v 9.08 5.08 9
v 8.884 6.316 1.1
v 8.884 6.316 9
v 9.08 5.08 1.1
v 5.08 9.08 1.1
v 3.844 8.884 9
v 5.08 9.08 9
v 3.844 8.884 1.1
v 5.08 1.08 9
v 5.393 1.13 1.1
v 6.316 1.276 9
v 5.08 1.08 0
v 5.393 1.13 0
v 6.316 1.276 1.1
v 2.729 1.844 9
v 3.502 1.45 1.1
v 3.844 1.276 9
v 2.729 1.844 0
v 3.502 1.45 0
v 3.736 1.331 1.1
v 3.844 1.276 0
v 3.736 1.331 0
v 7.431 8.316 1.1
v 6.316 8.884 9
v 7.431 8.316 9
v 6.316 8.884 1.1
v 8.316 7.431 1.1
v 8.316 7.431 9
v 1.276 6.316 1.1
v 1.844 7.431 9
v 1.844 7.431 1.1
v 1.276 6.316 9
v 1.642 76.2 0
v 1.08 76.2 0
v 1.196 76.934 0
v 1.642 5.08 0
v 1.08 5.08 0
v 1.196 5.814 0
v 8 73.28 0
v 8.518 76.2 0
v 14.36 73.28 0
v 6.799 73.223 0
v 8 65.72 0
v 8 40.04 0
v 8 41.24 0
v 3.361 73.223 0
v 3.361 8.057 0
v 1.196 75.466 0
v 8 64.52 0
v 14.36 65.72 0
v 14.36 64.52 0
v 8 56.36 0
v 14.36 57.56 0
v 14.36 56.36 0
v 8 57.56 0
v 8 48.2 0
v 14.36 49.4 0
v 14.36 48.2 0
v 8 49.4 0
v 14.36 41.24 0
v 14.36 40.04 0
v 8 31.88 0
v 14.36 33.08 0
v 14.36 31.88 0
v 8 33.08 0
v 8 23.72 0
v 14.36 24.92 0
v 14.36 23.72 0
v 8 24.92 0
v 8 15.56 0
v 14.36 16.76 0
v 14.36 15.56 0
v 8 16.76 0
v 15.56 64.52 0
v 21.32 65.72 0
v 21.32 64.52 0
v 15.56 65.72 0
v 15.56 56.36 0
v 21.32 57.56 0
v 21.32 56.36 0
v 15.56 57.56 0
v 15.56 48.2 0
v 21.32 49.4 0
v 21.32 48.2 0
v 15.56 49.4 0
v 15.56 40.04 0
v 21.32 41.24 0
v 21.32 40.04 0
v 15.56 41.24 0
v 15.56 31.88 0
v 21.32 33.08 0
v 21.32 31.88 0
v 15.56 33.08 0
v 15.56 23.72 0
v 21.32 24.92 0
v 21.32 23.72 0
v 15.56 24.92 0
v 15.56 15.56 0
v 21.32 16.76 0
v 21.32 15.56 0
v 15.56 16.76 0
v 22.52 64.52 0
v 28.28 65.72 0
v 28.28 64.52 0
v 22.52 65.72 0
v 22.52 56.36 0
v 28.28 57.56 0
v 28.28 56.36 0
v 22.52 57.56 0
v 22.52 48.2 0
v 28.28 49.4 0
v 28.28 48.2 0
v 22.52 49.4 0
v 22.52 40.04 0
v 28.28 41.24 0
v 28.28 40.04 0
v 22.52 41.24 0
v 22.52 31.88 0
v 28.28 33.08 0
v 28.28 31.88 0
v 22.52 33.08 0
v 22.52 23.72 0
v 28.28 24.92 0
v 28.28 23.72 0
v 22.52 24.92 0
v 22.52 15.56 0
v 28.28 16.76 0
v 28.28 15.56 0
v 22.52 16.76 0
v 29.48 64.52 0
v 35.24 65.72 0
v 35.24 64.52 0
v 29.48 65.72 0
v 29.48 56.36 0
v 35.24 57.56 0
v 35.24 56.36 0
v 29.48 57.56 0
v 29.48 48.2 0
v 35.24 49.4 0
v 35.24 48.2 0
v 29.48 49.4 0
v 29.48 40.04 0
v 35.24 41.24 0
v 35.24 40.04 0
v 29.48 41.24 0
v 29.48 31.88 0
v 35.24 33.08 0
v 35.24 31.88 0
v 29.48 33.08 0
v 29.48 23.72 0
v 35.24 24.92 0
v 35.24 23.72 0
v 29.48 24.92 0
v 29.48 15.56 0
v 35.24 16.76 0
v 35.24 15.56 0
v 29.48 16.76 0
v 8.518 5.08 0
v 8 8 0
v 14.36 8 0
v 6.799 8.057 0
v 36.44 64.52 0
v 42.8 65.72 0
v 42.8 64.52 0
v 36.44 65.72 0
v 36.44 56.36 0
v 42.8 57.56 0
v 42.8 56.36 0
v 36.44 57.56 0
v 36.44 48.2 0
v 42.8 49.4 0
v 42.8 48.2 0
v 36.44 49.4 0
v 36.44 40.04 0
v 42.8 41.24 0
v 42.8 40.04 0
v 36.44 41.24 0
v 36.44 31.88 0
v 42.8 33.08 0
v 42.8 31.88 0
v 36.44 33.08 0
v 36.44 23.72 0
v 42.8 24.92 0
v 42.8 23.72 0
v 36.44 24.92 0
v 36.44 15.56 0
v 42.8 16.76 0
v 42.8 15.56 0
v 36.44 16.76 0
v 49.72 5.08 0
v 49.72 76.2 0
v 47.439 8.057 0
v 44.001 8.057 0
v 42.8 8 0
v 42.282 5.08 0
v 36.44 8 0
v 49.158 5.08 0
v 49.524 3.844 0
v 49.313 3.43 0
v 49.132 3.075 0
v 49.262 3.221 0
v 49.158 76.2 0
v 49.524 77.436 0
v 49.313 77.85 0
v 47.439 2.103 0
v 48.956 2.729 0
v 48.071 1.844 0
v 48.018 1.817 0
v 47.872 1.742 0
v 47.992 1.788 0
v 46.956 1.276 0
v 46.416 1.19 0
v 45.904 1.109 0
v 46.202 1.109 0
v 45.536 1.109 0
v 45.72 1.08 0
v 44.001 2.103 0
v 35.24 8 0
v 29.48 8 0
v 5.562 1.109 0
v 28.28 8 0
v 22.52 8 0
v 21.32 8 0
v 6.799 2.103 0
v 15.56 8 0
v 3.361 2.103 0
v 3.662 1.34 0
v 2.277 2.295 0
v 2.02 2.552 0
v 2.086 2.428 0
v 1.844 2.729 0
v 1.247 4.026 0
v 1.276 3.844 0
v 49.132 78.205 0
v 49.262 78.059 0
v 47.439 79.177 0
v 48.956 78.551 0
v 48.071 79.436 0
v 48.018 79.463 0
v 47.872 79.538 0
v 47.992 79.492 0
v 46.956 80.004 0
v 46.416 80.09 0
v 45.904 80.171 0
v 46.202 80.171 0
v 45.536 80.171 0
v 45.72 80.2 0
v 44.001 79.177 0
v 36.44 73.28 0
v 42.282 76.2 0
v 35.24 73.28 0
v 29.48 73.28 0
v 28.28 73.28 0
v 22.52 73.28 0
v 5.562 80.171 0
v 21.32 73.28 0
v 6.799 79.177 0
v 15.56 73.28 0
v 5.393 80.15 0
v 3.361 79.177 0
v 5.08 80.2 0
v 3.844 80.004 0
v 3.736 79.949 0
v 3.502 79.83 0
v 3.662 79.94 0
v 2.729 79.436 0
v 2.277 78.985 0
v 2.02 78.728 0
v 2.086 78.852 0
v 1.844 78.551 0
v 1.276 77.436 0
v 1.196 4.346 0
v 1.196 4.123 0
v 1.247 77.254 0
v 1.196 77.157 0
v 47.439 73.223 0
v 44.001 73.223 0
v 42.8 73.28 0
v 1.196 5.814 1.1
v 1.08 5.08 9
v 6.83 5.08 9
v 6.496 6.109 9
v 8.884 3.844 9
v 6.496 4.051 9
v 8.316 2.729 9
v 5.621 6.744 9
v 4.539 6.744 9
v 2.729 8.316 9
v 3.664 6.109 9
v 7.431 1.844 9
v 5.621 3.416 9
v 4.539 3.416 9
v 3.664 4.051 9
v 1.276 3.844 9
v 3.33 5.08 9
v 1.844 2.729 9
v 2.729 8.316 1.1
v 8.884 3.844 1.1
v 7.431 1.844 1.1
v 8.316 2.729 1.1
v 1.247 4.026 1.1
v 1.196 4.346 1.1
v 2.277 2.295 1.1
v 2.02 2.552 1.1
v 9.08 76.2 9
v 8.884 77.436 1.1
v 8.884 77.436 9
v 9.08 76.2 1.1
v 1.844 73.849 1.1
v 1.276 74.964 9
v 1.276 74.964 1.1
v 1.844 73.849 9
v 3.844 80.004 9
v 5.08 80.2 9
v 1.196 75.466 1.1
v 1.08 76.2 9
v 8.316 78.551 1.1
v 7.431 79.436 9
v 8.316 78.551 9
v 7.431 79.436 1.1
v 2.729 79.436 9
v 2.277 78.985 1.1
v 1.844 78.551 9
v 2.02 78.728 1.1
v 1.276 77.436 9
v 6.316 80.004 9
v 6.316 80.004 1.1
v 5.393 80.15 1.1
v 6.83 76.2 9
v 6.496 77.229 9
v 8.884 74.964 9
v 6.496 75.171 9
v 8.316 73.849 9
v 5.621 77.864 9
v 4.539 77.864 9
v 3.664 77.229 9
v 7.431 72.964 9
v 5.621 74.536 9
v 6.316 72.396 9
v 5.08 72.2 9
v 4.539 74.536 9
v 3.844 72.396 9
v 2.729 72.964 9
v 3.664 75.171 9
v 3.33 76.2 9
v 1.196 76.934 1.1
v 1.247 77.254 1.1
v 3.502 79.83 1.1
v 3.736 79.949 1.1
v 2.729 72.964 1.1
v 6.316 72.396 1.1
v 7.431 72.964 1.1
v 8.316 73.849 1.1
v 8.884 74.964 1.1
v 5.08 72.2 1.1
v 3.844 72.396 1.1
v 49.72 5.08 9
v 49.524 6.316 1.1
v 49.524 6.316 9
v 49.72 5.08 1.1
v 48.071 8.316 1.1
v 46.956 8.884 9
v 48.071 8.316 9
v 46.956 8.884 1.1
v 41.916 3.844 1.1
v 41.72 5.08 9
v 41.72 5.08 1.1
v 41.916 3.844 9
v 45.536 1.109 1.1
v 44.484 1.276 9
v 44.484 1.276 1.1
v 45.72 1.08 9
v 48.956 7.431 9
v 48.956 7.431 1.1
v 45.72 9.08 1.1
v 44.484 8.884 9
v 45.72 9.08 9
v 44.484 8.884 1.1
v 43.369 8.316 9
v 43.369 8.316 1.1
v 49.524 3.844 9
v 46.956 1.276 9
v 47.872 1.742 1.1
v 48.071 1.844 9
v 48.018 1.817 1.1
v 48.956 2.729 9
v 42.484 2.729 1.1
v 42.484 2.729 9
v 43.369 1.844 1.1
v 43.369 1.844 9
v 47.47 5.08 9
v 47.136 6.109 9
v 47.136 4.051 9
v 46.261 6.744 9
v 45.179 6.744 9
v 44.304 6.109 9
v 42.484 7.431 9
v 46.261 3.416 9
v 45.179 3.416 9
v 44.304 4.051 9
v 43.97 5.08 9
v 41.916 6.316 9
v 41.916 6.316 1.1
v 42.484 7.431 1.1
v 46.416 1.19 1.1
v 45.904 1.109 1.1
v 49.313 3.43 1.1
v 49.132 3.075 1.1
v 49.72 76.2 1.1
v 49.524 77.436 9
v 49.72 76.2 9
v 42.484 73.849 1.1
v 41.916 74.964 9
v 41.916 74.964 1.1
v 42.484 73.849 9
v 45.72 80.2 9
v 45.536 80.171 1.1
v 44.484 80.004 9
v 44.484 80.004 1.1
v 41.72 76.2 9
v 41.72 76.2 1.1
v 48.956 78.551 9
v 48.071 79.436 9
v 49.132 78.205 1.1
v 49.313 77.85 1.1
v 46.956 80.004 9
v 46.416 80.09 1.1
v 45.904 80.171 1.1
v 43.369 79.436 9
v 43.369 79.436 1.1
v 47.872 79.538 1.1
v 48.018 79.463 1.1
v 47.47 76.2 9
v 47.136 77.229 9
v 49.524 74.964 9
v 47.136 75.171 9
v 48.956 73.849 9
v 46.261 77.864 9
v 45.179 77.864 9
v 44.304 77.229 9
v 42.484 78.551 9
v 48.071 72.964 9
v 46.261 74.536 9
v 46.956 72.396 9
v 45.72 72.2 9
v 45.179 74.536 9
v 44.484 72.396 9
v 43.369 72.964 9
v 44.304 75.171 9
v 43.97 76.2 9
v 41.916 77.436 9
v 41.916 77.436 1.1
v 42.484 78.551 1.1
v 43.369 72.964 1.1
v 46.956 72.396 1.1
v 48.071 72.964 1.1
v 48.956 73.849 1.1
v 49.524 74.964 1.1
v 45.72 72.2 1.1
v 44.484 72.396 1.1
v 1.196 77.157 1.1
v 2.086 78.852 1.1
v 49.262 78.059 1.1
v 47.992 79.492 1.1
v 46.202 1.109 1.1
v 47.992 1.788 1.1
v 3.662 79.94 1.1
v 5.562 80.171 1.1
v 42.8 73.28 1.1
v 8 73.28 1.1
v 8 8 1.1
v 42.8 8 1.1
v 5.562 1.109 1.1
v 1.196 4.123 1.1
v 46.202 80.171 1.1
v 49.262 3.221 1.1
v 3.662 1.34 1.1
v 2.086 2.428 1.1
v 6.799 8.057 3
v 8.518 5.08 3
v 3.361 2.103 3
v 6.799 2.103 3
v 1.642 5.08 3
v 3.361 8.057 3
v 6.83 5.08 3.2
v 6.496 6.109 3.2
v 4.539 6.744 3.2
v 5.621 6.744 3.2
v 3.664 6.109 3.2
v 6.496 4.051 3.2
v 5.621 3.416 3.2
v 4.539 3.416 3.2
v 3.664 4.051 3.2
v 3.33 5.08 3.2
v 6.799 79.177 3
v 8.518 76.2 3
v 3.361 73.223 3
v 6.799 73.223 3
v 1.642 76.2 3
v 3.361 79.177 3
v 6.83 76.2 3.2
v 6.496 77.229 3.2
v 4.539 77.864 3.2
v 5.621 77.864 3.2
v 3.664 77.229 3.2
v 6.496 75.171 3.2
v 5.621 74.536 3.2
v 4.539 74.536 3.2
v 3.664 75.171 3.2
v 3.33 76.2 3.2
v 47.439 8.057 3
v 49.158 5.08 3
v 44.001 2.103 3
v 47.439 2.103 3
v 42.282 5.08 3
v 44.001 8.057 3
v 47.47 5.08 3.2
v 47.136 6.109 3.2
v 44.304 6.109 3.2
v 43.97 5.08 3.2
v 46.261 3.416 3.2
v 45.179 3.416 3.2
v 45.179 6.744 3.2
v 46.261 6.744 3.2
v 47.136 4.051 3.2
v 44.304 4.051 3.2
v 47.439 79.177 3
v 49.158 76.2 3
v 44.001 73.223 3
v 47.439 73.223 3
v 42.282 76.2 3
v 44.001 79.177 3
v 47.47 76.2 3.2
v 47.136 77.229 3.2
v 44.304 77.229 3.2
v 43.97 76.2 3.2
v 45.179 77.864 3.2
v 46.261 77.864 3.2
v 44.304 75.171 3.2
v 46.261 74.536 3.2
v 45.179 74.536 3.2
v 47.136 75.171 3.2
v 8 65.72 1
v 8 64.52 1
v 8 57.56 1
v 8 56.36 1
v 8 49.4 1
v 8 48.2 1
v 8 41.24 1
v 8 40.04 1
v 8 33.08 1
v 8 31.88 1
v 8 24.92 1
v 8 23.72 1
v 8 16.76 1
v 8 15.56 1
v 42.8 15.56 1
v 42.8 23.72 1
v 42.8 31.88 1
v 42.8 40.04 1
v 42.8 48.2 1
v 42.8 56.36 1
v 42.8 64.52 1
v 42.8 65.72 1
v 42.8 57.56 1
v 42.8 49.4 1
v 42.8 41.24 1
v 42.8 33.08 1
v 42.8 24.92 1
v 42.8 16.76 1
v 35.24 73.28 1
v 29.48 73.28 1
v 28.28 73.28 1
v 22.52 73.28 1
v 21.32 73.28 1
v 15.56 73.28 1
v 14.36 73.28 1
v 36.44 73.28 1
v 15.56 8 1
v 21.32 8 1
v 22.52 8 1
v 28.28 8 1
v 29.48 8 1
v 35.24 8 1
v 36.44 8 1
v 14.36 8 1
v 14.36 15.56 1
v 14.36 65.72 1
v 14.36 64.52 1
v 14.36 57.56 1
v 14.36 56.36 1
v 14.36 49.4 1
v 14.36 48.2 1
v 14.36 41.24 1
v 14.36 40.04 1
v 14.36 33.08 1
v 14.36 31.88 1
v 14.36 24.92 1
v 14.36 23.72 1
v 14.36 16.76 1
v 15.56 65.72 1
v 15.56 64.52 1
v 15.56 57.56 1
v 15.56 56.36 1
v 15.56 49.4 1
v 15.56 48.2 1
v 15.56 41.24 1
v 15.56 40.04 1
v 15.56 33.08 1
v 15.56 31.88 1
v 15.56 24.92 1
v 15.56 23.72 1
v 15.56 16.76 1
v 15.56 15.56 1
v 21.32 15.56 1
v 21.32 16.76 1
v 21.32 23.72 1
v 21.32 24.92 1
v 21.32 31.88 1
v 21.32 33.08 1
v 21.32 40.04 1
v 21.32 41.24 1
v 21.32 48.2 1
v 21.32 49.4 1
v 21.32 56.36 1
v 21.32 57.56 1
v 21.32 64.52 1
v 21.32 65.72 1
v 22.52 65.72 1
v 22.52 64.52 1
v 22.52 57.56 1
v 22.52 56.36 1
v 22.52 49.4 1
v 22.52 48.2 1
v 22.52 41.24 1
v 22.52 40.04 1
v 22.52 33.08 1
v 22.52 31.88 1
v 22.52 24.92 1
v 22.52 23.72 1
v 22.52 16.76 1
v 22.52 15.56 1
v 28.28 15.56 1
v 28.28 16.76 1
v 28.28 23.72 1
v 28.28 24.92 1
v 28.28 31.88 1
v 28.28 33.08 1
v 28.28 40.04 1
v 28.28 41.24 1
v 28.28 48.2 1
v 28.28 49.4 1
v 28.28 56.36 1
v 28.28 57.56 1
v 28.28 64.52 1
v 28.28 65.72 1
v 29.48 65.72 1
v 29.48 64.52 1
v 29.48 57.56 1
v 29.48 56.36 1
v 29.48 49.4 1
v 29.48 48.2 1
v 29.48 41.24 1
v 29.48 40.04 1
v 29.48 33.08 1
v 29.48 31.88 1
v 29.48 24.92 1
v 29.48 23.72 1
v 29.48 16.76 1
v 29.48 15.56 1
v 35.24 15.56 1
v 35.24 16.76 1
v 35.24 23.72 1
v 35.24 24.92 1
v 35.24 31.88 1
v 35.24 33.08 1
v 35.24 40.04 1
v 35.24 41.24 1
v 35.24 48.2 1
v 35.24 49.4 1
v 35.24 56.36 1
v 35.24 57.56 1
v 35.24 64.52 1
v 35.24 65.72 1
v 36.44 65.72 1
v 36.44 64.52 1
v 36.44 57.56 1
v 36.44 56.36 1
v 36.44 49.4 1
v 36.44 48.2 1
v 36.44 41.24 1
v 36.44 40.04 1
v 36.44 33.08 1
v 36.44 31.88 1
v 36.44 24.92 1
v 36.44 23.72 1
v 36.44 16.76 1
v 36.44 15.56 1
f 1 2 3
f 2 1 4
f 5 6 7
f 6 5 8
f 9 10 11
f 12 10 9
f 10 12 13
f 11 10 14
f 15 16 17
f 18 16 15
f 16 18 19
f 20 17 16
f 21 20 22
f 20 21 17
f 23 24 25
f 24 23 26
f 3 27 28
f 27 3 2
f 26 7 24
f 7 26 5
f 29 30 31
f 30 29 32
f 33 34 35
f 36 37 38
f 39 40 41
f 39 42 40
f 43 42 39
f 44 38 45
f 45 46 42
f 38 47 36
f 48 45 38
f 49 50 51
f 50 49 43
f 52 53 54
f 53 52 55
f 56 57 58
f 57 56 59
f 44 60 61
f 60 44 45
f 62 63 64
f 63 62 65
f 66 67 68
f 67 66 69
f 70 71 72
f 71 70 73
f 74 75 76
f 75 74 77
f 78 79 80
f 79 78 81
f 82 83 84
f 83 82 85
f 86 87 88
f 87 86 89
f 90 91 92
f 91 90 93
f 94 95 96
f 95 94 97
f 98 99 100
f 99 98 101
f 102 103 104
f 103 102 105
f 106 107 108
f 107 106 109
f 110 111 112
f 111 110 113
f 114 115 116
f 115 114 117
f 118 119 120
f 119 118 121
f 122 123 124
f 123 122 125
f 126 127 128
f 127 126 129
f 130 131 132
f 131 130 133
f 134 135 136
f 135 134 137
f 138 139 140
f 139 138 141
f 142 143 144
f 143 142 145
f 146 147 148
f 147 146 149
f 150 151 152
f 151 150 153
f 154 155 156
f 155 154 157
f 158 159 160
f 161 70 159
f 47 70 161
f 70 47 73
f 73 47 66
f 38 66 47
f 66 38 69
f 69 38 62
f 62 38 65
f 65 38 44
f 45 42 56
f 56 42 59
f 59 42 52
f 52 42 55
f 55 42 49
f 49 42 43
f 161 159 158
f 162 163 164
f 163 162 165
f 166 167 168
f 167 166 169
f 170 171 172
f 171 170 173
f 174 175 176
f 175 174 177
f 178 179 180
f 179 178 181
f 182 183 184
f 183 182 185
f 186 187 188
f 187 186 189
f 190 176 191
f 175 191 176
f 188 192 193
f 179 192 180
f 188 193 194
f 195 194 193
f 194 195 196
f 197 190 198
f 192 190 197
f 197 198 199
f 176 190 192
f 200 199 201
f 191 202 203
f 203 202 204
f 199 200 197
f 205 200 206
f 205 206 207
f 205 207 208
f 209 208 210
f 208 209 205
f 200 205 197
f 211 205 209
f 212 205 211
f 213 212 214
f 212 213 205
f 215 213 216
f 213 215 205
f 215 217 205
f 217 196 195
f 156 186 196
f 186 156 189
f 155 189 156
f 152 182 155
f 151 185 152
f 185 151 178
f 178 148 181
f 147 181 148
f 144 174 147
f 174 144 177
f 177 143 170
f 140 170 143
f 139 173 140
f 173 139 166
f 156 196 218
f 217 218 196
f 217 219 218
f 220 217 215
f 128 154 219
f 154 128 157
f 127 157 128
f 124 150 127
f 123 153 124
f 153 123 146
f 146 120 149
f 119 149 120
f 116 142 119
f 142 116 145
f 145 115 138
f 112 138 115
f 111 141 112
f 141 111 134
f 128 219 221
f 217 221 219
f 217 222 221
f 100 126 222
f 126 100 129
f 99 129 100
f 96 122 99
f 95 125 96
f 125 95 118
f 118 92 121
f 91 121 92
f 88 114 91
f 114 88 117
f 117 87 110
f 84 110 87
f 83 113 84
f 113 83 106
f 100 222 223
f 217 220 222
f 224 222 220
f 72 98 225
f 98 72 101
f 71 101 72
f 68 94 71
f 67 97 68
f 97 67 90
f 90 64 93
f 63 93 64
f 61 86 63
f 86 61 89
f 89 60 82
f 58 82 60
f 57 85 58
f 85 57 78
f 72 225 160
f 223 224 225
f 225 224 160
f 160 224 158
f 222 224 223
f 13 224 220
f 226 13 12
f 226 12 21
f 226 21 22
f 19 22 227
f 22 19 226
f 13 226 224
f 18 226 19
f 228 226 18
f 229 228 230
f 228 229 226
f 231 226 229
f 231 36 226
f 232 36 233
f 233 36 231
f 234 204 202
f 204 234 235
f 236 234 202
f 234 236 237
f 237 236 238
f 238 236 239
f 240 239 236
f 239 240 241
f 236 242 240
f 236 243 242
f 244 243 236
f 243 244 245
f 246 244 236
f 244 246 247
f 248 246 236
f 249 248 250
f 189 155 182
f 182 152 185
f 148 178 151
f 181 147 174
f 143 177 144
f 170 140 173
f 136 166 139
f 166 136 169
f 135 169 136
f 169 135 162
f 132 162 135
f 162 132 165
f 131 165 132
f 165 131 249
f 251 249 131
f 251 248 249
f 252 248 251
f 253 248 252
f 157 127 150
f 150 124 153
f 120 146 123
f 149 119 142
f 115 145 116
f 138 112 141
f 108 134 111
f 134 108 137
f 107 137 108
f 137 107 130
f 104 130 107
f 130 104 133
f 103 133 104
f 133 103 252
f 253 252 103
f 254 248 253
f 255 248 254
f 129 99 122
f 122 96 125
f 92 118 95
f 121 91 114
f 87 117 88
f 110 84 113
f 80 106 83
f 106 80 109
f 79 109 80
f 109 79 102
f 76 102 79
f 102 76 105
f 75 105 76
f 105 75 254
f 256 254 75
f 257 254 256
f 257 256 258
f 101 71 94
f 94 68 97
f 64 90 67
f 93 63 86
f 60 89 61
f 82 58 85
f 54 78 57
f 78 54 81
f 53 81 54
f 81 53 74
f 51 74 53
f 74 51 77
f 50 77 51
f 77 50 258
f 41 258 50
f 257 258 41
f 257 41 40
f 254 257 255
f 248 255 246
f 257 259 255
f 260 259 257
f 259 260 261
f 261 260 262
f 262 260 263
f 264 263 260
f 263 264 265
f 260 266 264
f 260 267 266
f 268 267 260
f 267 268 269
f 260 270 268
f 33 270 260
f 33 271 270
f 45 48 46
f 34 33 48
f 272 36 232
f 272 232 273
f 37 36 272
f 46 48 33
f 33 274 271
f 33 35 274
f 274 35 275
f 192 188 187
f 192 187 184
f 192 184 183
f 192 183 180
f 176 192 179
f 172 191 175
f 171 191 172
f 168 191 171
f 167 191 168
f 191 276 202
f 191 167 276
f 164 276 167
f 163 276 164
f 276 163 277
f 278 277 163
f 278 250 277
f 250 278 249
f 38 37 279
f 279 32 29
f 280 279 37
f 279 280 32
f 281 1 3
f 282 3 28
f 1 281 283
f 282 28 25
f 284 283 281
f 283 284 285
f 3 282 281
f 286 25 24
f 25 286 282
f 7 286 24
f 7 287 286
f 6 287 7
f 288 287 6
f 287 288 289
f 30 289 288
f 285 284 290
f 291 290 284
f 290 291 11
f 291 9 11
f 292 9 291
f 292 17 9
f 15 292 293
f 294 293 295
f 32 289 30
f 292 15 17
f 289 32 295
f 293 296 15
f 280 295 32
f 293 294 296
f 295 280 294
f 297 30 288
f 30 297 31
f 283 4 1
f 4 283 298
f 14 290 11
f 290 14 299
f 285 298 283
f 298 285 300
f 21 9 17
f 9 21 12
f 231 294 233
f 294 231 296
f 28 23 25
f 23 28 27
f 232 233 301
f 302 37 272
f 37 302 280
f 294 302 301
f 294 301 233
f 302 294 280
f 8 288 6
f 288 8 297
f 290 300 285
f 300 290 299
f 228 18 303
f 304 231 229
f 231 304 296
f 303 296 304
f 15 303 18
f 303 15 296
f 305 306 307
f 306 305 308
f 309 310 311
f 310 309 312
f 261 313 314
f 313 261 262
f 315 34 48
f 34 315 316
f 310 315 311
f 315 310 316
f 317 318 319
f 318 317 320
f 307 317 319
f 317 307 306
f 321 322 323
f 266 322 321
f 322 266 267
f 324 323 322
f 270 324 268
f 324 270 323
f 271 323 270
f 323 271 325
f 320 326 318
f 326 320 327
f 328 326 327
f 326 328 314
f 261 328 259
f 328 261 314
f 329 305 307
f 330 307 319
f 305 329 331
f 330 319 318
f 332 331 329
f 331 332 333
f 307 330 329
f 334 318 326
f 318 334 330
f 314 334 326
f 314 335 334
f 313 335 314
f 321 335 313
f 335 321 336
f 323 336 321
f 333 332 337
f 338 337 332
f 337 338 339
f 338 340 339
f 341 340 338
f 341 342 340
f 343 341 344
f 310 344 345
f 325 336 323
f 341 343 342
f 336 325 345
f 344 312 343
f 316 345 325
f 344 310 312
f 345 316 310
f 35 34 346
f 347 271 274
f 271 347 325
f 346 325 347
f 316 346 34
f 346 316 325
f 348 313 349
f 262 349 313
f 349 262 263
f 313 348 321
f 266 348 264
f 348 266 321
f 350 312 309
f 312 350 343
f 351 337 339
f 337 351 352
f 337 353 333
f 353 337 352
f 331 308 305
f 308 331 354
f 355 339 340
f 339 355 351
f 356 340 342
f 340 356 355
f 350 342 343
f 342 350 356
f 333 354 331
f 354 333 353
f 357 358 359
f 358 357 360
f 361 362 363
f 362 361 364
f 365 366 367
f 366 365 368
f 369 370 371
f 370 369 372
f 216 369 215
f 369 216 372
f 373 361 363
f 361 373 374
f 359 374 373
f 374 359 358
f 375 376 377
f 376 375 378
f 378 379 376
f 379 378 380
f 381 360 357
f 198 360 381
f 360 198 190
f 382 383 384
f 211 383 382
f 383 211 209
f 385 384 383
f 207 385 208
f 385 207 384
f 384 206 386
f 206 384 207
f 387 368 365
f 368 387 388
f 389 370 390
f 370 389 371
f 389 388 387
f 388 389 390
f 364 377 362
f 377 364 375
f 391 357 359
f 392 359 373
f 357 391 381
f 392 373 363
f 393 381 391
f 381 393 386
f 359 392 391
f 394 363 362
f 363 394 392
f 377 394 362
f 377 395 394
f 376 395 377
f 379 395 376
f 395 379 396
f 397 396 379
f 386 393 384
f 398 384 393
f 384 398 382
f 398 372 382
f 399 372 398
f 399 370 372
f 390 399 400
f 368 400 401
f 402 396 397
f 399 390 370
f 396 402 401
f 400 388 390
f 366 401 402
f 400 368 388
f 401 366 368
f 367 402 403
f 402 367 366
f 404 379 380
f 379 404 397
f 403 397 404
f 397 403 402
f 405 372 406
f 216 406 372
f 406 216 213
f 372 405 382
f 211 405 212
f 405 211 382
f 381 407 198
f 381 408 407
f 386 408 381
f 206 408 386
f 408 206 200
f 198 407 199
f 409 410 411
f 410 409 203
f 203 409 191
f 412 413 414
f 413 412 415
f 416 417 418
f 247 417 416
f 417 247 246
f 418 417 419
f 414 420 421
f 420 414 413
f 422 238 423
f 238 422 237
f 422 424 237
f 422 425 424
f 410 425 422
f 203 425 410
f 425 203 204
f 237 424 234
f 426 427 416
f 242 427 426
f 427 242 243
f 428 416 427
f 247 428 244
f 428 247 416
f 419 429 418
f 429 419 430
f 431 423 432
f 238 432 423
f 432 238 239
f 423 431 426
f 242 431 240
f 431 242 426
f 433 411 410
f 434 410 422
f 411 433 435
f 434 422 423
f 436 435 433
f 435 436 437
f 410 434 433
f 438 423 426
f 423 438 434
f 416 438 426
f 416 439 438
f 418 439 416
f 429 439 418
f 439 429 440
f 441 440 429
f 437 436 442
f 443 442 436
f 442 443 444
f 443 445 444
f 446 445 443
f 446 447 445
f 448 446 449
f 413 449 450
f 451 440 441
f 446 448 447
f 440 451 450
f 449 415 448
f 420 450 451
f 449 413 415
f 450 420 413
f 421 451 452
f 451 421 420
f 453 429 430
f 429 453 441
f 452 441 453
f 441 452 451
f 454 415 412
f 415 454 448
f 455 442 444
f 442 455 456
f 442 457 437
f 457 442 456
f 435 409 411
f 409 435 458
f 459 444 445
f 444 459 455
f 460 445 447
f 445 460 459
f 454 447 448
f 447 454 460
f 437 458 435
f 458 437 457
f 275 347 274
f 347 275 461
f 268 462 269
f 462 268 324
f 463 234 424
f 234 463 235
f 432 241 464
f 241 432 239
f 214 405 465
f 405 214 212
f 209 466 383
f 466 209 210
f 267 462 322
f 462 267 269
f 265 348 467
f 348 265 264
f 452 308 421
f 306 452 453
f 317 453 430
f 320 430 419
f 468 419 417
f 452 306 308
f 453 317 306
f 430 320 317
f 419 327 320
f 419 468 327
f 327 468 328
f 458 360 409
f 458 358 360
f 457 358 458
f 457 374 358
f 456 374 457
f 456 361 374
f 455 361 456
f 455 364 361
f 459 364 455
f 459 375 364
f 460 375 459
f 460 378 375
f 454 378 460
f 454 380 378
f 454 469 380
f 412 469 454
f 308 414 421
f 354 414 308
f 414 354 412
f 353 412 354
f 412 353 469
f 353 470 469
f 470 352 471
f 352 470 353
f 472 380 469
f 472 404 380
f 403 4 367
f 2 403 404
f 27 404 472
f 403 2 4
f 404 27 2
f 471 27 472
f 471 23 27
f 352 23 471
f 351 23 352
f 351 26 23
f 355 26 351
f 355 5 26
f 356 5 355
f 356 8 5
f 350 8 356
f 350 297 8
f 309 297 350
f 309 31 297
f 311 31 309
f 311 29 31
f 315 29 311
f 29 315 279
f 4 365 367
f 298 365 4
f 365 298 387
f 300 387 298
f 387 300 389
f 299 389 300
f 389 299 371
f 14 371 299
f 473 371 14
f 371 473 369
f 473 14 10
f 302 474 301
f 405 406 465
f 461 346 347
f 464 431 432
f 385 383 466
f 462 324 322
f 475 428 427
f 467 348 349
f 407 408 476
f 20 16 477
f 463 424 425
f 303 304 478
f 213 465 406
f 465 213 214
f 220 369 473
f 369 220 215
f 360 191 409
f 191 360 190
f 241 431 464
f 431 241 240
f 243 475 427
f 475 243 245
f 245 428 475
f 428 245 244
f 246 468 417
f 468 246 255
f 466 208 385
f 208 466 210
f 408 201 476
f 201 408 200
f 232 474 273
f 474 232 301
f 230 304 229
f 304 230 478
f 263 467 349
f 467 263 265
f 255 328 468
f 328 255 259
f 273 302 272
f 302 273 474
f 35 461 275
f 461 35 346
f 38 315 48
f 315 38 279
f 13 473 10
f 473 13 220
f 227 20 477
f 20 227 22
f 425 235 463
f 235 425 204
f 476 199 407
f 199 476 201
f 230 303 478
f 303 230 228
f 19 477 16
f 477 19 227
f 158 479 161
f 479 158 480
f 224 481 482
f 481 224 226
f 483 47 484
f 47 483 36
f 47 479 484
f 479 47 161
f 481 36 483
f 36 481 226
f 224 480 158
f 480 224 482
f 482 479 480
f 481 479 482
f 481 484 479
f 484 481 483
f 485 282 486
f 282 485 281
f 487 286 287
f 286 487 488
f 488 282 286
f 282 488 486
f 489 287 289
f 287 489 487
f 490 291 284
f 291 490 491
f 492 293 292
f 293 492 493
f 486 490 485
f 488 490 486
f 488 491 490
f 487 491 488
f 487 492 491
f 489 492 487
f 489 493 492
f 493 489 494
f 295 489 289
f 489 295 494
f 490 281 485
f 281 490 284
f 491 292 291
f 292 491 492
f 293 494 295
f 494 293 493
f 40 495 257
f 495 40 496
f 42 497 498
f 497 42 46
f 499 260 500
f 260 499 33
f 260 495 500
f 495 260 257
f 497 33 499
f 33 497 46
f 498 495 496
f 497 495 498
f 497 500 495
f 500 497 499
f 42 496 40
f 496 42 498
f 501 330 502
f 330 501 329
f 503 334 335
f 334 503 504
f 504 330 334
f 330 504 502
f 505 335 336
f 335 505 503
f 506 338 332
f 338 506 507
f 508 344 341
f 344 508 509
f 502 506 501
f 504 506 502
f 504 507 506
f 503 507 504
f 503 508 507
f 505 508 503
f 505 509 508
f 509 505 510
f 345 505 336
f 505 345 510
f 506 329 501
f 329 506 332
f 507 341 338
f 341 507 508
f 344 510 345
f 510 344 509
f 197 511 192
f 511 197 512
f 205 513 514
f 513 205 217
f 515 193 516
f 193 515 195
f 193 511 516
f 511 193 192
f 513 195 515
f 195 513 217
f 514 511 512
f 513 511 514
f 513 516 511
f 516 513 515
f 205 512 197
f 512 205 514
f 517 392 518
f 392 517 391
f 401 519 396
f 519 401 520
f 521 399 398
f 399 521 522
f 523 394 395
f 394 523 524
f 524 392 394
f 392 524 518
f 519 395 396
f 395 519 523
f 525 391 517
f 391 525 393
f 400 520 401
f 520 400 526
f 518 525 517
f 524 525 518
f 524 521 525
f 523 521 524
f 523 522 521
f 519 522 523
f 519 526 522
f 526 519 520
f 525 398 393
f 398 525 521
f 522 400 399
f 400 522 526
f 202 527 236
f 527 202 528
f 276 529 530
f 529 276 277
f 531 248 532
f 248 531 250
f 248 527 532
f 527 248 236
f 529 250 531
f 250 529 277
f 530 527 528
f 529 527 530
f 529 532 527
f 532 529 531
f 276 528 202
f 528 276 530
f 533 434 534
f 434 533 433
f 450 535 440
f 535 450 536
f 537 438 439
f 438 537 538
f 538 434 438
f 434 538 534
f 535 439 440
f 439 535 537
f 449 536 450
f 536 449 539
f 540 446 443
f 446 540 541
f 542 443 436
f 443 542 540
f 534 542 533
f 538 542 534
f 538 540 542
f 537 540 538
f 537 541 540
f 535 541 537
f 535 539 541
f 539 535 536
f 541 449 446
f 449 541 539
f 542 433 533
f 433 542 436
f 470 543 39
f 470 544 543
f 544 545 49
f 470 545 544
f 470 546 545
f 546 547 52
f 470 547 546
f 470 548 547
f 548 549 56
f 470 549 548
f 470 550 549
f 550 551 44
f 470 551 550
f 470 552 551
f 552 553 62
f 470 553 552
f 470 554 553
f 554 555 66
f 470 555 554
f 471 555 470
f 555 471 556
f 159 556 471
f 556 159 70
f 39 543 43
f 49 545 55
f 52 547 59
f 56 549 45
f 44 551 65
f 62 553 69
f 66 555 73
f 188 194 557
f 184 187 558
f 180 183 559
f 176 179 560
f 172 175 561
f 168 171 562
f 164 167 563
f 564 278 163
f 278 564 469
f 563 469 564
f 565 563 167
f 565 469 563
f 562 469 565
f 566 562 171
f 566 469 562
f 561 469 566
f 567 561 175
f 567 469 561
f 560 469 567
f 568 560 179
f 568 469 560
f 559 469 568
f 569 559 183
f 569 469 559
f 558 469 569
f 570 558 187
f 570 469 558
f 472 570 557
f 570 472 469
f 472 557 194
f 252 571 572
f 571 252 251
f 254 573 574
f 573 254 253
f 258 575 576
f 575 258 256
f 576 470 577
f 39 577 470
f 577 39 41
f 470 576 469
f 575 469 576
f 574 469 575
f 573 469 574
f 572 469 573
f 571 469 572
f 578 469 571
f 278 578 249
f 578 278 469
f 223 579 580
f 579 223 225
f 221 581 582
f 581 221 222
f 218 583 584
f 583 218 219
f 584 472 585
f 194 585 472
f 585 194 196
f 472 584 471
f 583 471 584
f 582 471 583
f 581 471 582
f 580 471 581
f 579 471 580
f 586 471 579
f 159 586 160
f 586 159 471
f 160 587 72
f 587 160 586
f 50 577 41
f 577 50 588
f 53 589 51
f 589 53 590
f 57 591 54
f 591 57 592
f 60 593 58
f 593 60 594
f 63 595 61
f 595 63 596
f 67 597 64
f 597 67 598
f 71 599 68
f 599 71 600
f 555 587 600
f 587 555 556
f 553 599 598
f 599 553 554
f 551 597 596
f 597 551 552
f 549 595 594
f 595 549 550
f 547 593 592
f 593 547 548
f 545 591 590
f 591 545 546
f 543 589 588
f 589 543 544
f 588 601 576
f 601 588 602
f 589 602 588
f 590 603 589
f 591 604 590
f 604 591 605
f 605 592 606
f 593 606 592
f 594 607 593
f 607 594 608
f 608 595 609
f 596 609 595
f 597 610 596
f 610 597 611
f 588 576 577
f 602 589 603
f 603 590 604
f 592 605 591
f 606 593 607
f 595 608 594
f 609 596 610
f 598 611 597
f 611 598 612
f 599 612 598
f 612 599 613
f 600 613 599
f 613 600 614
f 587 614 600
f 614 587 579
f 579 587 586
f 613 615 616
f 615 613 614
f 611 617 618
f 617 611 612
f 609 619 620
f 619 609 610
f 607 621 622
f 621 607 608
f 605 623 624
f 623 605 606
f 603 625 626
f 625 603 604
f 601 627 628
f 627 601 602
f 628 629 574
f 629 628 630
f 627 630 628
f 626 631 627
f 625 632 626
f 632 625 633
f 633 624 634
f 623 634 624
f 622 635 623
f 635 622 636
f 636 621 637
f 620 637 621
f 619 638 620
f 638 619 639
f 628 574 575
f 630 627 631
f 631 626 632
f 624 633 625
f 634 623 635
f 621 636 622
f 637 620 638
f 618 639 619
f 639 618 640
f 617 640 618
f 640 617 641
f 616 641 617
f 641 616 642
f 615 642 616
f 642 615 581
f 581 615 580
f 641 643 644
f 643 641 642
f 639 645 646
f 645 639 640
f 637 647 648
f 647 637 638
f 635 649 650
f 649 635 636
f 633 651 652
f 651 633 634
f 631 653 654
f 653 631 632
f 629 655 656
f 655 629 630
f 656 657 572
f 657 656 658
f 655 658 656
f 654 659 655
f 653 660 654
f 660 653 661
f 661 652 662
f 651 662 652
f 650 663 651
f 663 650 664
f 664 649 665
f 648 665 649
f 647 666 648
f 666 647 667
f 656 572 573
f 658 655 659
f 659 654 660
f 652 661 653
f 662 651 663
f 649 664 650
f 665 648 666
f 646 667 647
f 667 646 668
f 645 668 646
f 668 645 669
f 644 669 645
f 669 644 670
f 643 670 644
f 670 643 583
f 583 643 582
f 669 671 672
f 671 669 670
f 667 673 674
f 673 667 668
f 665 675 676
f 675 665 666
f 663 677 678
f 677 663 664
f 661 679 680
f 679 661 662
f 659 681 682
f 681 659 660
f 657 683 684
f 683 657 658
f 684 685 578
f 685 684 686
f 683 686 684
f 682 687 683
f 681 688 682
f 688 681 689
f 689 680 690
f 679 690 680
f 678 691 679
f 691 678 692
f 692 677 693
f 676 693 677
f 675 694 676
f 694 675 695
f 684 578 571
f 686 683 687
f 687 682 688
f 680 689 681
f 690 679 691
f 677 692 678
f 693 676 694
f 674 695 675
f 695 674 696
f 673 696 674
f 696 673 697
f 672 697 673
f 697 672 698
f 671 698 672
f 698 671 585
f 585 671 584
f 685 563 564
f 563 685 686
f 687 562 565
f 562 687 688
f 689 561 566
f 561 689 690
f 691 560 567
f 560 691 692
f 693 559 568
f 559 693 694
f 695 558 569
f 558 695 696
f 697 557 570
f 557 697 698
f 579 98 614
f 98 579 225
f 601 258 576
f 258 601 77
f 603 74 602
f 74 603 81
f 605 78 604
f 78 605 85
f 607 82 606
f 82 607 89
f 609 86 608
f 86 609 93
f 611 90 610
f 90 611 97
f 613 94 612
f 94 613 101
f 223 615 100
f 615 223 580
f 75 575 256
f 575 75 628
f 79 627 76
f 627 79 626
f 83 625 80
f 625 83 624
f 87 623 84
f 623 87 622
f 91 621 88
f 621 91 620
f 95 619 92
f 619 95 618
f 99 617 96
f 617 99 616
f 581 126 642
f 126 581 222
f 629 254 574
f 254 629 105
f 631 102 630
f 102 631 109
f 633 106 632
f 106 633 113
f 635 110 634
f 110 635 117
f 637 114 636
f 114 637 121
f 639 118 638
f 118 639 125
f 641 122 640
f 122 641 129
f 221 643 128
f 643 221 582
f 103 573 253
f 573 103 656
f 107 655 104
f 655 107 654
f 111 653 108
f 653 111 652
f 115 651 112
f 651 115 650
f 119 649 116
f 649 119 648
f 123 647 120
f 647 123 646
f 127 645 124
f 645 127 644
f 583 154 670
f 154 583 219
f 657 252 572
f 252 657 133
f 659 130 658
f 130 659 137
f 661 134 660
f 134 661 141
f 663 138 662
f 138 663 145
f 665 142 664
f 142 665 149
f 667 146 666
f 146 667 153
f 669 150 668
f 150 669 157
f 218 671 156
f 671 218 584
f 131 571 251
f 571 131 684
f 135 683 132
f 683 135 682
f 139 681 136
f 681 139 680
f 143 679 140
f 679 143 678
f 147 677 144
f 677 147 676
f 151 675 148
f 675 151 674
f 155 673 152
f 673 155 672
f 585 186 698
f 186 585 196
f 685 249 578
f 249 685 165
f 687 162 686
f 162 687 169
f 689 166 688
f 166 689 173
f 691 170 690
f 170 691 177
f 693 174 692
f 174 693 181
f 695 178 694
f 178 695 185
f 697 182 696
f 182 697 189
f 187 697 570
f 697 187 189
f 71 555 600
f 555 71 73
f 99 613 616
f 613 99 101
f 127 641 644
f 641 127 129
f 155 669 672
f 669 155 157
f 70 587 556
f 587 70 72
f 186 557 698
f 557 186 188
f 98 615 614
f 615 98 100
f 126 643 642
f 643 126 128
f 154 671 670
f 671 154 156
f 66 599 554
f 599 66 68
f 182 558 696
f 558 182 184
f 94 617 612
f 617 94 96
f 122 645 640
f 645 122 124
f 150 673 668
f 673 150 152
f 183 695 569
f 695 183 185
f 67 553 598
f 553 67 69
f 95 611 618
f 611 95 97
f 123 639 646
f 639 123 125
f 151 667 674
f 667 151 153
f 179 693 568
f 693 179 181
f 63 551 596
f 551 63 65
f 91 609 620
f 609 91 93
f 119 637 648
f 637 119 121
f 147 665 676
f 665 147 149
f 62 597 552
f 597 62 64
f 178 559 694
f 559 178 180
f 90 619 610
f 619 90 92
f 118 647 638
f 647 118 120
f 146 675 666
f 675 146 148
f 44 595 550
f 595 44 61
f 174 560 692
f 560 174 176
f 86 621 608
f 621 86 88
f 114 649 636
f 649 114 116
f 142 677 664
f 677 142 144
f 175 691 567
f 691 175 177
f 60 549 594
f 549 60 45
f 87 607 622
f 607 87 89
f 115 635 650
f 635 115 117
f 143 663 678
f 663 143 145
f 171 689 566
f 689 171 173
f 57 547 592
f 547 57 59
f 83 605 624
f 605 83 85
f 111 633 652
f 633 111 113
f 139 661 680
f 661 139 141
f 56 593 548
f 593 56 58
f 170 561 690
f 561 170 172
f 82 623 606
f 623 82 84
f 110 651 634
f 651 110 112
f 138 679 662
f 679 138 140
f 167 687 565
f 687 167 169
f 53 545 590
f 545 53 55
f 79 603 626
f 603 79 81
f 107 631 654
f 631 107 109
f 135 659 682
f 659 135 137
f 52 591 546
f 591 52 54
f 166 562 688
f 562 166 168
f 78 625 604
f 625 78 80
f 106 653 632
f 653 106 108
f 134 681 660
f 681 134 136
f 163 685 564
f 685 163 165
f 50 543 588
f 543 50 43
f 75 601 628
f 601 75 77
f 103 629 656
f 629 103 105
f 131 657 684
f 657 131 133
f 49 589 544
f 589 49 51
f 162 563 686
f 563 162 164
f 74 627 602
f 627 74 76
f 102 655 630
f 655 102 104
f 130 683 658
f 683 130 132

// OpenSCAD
x_holes = 5;
y_holes = 8;
pedestal_height = 9;   // designed for use the MLAB standard 20mm screws.

MLAB_grid = 10.16;
thickness = 1;          // thickness of bottom belt
pile_radius = 4;        // radius of pile around screw
x_size = x_holes * MLAB_grid ;
y_size = y_holes * MLAB_grid ;
mount_hole = 3.5;
//nut_size = 6.8;  //size suitable for PLA material
nut_size = 6.7;  //size suitable for ABS material
clear = 0.175;

//------------ Safety grid parameters---------------------------

nY = 8;
nX = 5;


meshX=x_size-4*pile_radius;
meshY=y_size-4*pile_radius;

// width of solid part of grid
meshSolid=1.2;

meshSpaceX = (meshX - meshSolid*nX)/nX;
meshSpaceY = (meshY - meshSolid*nY)/nY;



MLAB_grid_xoffset = MLAB_grid/2;
MLAB_grid_yoffset = MLAB_grid/2;

grid_list = [for (j = [MLAB_grid_xoffset : MLAB_grid: x_size], i = [MLAB_grid_yoffset :MLAB_grid: y_size]) 
if ((j>(x_size-10) && i>(y_size-10)) || (j<10 && i<10) || (j<10 && i>(y_size-10)) || (j>(x_size-10) && i<10) ) [j, i] ];


difference () {
    union () {
        for (j = grid_list) {
            translate (concat(j, [0]))
            cylinder (h = pedestal_height, r= pile_radius, $fn=20);
        }

            translate ([MLAB_grid_xoffset , MLAB_grid_yoffset , 0])
                minkowski() {
                cube([x_size - 2*(MLAB_grid/2 - pile_radius) - 2*pile_radius, y_size - 2*(MLAB_grid/2 - pile_radius) - 2*pile_radius, thickness]);          // base plastics brick
                cylinder(r=pile_radius,h=0.1);
            }
    }
    
    translate ([2*pile_radius, 2*pile_radius, 0]) // central hole in module support
        cube([x_size-4*pile_radius, y_size-4*pile_radius, 2*thickness]);          

    // MLAB grid holes
    for (j = grid_list) {
            translate (concat(j, [0]))
            cylinder (h = 3, r= (nut_size+clear)/2, $fn=6);
            translate (concat(j, [3.2]))  // one solid layer for slicer (the holes will be pierced on demand )
            cylinder (h = pedestal_height, r= mount_hole/2, $fn=10);
    }    
}

translate ([2*pile_radius, 2*pile_radius, 0]) // central hole in module support
    union()
    {
        for (i=[1:nX-1]) {
                 translate([i*(meshSolid+meshSpaceX) - meshSolid/2,0,0]) cube(size=[meshSolid, meshY, thickness],center=false);
        }

        for (i=[1:nY-1]) {
                translate([0,i*(meshSolid+meshSpaceY) - meshSolid/2,0]) cube(size=[meshX, meshSolid, thickness],center=false);

        }
    }
